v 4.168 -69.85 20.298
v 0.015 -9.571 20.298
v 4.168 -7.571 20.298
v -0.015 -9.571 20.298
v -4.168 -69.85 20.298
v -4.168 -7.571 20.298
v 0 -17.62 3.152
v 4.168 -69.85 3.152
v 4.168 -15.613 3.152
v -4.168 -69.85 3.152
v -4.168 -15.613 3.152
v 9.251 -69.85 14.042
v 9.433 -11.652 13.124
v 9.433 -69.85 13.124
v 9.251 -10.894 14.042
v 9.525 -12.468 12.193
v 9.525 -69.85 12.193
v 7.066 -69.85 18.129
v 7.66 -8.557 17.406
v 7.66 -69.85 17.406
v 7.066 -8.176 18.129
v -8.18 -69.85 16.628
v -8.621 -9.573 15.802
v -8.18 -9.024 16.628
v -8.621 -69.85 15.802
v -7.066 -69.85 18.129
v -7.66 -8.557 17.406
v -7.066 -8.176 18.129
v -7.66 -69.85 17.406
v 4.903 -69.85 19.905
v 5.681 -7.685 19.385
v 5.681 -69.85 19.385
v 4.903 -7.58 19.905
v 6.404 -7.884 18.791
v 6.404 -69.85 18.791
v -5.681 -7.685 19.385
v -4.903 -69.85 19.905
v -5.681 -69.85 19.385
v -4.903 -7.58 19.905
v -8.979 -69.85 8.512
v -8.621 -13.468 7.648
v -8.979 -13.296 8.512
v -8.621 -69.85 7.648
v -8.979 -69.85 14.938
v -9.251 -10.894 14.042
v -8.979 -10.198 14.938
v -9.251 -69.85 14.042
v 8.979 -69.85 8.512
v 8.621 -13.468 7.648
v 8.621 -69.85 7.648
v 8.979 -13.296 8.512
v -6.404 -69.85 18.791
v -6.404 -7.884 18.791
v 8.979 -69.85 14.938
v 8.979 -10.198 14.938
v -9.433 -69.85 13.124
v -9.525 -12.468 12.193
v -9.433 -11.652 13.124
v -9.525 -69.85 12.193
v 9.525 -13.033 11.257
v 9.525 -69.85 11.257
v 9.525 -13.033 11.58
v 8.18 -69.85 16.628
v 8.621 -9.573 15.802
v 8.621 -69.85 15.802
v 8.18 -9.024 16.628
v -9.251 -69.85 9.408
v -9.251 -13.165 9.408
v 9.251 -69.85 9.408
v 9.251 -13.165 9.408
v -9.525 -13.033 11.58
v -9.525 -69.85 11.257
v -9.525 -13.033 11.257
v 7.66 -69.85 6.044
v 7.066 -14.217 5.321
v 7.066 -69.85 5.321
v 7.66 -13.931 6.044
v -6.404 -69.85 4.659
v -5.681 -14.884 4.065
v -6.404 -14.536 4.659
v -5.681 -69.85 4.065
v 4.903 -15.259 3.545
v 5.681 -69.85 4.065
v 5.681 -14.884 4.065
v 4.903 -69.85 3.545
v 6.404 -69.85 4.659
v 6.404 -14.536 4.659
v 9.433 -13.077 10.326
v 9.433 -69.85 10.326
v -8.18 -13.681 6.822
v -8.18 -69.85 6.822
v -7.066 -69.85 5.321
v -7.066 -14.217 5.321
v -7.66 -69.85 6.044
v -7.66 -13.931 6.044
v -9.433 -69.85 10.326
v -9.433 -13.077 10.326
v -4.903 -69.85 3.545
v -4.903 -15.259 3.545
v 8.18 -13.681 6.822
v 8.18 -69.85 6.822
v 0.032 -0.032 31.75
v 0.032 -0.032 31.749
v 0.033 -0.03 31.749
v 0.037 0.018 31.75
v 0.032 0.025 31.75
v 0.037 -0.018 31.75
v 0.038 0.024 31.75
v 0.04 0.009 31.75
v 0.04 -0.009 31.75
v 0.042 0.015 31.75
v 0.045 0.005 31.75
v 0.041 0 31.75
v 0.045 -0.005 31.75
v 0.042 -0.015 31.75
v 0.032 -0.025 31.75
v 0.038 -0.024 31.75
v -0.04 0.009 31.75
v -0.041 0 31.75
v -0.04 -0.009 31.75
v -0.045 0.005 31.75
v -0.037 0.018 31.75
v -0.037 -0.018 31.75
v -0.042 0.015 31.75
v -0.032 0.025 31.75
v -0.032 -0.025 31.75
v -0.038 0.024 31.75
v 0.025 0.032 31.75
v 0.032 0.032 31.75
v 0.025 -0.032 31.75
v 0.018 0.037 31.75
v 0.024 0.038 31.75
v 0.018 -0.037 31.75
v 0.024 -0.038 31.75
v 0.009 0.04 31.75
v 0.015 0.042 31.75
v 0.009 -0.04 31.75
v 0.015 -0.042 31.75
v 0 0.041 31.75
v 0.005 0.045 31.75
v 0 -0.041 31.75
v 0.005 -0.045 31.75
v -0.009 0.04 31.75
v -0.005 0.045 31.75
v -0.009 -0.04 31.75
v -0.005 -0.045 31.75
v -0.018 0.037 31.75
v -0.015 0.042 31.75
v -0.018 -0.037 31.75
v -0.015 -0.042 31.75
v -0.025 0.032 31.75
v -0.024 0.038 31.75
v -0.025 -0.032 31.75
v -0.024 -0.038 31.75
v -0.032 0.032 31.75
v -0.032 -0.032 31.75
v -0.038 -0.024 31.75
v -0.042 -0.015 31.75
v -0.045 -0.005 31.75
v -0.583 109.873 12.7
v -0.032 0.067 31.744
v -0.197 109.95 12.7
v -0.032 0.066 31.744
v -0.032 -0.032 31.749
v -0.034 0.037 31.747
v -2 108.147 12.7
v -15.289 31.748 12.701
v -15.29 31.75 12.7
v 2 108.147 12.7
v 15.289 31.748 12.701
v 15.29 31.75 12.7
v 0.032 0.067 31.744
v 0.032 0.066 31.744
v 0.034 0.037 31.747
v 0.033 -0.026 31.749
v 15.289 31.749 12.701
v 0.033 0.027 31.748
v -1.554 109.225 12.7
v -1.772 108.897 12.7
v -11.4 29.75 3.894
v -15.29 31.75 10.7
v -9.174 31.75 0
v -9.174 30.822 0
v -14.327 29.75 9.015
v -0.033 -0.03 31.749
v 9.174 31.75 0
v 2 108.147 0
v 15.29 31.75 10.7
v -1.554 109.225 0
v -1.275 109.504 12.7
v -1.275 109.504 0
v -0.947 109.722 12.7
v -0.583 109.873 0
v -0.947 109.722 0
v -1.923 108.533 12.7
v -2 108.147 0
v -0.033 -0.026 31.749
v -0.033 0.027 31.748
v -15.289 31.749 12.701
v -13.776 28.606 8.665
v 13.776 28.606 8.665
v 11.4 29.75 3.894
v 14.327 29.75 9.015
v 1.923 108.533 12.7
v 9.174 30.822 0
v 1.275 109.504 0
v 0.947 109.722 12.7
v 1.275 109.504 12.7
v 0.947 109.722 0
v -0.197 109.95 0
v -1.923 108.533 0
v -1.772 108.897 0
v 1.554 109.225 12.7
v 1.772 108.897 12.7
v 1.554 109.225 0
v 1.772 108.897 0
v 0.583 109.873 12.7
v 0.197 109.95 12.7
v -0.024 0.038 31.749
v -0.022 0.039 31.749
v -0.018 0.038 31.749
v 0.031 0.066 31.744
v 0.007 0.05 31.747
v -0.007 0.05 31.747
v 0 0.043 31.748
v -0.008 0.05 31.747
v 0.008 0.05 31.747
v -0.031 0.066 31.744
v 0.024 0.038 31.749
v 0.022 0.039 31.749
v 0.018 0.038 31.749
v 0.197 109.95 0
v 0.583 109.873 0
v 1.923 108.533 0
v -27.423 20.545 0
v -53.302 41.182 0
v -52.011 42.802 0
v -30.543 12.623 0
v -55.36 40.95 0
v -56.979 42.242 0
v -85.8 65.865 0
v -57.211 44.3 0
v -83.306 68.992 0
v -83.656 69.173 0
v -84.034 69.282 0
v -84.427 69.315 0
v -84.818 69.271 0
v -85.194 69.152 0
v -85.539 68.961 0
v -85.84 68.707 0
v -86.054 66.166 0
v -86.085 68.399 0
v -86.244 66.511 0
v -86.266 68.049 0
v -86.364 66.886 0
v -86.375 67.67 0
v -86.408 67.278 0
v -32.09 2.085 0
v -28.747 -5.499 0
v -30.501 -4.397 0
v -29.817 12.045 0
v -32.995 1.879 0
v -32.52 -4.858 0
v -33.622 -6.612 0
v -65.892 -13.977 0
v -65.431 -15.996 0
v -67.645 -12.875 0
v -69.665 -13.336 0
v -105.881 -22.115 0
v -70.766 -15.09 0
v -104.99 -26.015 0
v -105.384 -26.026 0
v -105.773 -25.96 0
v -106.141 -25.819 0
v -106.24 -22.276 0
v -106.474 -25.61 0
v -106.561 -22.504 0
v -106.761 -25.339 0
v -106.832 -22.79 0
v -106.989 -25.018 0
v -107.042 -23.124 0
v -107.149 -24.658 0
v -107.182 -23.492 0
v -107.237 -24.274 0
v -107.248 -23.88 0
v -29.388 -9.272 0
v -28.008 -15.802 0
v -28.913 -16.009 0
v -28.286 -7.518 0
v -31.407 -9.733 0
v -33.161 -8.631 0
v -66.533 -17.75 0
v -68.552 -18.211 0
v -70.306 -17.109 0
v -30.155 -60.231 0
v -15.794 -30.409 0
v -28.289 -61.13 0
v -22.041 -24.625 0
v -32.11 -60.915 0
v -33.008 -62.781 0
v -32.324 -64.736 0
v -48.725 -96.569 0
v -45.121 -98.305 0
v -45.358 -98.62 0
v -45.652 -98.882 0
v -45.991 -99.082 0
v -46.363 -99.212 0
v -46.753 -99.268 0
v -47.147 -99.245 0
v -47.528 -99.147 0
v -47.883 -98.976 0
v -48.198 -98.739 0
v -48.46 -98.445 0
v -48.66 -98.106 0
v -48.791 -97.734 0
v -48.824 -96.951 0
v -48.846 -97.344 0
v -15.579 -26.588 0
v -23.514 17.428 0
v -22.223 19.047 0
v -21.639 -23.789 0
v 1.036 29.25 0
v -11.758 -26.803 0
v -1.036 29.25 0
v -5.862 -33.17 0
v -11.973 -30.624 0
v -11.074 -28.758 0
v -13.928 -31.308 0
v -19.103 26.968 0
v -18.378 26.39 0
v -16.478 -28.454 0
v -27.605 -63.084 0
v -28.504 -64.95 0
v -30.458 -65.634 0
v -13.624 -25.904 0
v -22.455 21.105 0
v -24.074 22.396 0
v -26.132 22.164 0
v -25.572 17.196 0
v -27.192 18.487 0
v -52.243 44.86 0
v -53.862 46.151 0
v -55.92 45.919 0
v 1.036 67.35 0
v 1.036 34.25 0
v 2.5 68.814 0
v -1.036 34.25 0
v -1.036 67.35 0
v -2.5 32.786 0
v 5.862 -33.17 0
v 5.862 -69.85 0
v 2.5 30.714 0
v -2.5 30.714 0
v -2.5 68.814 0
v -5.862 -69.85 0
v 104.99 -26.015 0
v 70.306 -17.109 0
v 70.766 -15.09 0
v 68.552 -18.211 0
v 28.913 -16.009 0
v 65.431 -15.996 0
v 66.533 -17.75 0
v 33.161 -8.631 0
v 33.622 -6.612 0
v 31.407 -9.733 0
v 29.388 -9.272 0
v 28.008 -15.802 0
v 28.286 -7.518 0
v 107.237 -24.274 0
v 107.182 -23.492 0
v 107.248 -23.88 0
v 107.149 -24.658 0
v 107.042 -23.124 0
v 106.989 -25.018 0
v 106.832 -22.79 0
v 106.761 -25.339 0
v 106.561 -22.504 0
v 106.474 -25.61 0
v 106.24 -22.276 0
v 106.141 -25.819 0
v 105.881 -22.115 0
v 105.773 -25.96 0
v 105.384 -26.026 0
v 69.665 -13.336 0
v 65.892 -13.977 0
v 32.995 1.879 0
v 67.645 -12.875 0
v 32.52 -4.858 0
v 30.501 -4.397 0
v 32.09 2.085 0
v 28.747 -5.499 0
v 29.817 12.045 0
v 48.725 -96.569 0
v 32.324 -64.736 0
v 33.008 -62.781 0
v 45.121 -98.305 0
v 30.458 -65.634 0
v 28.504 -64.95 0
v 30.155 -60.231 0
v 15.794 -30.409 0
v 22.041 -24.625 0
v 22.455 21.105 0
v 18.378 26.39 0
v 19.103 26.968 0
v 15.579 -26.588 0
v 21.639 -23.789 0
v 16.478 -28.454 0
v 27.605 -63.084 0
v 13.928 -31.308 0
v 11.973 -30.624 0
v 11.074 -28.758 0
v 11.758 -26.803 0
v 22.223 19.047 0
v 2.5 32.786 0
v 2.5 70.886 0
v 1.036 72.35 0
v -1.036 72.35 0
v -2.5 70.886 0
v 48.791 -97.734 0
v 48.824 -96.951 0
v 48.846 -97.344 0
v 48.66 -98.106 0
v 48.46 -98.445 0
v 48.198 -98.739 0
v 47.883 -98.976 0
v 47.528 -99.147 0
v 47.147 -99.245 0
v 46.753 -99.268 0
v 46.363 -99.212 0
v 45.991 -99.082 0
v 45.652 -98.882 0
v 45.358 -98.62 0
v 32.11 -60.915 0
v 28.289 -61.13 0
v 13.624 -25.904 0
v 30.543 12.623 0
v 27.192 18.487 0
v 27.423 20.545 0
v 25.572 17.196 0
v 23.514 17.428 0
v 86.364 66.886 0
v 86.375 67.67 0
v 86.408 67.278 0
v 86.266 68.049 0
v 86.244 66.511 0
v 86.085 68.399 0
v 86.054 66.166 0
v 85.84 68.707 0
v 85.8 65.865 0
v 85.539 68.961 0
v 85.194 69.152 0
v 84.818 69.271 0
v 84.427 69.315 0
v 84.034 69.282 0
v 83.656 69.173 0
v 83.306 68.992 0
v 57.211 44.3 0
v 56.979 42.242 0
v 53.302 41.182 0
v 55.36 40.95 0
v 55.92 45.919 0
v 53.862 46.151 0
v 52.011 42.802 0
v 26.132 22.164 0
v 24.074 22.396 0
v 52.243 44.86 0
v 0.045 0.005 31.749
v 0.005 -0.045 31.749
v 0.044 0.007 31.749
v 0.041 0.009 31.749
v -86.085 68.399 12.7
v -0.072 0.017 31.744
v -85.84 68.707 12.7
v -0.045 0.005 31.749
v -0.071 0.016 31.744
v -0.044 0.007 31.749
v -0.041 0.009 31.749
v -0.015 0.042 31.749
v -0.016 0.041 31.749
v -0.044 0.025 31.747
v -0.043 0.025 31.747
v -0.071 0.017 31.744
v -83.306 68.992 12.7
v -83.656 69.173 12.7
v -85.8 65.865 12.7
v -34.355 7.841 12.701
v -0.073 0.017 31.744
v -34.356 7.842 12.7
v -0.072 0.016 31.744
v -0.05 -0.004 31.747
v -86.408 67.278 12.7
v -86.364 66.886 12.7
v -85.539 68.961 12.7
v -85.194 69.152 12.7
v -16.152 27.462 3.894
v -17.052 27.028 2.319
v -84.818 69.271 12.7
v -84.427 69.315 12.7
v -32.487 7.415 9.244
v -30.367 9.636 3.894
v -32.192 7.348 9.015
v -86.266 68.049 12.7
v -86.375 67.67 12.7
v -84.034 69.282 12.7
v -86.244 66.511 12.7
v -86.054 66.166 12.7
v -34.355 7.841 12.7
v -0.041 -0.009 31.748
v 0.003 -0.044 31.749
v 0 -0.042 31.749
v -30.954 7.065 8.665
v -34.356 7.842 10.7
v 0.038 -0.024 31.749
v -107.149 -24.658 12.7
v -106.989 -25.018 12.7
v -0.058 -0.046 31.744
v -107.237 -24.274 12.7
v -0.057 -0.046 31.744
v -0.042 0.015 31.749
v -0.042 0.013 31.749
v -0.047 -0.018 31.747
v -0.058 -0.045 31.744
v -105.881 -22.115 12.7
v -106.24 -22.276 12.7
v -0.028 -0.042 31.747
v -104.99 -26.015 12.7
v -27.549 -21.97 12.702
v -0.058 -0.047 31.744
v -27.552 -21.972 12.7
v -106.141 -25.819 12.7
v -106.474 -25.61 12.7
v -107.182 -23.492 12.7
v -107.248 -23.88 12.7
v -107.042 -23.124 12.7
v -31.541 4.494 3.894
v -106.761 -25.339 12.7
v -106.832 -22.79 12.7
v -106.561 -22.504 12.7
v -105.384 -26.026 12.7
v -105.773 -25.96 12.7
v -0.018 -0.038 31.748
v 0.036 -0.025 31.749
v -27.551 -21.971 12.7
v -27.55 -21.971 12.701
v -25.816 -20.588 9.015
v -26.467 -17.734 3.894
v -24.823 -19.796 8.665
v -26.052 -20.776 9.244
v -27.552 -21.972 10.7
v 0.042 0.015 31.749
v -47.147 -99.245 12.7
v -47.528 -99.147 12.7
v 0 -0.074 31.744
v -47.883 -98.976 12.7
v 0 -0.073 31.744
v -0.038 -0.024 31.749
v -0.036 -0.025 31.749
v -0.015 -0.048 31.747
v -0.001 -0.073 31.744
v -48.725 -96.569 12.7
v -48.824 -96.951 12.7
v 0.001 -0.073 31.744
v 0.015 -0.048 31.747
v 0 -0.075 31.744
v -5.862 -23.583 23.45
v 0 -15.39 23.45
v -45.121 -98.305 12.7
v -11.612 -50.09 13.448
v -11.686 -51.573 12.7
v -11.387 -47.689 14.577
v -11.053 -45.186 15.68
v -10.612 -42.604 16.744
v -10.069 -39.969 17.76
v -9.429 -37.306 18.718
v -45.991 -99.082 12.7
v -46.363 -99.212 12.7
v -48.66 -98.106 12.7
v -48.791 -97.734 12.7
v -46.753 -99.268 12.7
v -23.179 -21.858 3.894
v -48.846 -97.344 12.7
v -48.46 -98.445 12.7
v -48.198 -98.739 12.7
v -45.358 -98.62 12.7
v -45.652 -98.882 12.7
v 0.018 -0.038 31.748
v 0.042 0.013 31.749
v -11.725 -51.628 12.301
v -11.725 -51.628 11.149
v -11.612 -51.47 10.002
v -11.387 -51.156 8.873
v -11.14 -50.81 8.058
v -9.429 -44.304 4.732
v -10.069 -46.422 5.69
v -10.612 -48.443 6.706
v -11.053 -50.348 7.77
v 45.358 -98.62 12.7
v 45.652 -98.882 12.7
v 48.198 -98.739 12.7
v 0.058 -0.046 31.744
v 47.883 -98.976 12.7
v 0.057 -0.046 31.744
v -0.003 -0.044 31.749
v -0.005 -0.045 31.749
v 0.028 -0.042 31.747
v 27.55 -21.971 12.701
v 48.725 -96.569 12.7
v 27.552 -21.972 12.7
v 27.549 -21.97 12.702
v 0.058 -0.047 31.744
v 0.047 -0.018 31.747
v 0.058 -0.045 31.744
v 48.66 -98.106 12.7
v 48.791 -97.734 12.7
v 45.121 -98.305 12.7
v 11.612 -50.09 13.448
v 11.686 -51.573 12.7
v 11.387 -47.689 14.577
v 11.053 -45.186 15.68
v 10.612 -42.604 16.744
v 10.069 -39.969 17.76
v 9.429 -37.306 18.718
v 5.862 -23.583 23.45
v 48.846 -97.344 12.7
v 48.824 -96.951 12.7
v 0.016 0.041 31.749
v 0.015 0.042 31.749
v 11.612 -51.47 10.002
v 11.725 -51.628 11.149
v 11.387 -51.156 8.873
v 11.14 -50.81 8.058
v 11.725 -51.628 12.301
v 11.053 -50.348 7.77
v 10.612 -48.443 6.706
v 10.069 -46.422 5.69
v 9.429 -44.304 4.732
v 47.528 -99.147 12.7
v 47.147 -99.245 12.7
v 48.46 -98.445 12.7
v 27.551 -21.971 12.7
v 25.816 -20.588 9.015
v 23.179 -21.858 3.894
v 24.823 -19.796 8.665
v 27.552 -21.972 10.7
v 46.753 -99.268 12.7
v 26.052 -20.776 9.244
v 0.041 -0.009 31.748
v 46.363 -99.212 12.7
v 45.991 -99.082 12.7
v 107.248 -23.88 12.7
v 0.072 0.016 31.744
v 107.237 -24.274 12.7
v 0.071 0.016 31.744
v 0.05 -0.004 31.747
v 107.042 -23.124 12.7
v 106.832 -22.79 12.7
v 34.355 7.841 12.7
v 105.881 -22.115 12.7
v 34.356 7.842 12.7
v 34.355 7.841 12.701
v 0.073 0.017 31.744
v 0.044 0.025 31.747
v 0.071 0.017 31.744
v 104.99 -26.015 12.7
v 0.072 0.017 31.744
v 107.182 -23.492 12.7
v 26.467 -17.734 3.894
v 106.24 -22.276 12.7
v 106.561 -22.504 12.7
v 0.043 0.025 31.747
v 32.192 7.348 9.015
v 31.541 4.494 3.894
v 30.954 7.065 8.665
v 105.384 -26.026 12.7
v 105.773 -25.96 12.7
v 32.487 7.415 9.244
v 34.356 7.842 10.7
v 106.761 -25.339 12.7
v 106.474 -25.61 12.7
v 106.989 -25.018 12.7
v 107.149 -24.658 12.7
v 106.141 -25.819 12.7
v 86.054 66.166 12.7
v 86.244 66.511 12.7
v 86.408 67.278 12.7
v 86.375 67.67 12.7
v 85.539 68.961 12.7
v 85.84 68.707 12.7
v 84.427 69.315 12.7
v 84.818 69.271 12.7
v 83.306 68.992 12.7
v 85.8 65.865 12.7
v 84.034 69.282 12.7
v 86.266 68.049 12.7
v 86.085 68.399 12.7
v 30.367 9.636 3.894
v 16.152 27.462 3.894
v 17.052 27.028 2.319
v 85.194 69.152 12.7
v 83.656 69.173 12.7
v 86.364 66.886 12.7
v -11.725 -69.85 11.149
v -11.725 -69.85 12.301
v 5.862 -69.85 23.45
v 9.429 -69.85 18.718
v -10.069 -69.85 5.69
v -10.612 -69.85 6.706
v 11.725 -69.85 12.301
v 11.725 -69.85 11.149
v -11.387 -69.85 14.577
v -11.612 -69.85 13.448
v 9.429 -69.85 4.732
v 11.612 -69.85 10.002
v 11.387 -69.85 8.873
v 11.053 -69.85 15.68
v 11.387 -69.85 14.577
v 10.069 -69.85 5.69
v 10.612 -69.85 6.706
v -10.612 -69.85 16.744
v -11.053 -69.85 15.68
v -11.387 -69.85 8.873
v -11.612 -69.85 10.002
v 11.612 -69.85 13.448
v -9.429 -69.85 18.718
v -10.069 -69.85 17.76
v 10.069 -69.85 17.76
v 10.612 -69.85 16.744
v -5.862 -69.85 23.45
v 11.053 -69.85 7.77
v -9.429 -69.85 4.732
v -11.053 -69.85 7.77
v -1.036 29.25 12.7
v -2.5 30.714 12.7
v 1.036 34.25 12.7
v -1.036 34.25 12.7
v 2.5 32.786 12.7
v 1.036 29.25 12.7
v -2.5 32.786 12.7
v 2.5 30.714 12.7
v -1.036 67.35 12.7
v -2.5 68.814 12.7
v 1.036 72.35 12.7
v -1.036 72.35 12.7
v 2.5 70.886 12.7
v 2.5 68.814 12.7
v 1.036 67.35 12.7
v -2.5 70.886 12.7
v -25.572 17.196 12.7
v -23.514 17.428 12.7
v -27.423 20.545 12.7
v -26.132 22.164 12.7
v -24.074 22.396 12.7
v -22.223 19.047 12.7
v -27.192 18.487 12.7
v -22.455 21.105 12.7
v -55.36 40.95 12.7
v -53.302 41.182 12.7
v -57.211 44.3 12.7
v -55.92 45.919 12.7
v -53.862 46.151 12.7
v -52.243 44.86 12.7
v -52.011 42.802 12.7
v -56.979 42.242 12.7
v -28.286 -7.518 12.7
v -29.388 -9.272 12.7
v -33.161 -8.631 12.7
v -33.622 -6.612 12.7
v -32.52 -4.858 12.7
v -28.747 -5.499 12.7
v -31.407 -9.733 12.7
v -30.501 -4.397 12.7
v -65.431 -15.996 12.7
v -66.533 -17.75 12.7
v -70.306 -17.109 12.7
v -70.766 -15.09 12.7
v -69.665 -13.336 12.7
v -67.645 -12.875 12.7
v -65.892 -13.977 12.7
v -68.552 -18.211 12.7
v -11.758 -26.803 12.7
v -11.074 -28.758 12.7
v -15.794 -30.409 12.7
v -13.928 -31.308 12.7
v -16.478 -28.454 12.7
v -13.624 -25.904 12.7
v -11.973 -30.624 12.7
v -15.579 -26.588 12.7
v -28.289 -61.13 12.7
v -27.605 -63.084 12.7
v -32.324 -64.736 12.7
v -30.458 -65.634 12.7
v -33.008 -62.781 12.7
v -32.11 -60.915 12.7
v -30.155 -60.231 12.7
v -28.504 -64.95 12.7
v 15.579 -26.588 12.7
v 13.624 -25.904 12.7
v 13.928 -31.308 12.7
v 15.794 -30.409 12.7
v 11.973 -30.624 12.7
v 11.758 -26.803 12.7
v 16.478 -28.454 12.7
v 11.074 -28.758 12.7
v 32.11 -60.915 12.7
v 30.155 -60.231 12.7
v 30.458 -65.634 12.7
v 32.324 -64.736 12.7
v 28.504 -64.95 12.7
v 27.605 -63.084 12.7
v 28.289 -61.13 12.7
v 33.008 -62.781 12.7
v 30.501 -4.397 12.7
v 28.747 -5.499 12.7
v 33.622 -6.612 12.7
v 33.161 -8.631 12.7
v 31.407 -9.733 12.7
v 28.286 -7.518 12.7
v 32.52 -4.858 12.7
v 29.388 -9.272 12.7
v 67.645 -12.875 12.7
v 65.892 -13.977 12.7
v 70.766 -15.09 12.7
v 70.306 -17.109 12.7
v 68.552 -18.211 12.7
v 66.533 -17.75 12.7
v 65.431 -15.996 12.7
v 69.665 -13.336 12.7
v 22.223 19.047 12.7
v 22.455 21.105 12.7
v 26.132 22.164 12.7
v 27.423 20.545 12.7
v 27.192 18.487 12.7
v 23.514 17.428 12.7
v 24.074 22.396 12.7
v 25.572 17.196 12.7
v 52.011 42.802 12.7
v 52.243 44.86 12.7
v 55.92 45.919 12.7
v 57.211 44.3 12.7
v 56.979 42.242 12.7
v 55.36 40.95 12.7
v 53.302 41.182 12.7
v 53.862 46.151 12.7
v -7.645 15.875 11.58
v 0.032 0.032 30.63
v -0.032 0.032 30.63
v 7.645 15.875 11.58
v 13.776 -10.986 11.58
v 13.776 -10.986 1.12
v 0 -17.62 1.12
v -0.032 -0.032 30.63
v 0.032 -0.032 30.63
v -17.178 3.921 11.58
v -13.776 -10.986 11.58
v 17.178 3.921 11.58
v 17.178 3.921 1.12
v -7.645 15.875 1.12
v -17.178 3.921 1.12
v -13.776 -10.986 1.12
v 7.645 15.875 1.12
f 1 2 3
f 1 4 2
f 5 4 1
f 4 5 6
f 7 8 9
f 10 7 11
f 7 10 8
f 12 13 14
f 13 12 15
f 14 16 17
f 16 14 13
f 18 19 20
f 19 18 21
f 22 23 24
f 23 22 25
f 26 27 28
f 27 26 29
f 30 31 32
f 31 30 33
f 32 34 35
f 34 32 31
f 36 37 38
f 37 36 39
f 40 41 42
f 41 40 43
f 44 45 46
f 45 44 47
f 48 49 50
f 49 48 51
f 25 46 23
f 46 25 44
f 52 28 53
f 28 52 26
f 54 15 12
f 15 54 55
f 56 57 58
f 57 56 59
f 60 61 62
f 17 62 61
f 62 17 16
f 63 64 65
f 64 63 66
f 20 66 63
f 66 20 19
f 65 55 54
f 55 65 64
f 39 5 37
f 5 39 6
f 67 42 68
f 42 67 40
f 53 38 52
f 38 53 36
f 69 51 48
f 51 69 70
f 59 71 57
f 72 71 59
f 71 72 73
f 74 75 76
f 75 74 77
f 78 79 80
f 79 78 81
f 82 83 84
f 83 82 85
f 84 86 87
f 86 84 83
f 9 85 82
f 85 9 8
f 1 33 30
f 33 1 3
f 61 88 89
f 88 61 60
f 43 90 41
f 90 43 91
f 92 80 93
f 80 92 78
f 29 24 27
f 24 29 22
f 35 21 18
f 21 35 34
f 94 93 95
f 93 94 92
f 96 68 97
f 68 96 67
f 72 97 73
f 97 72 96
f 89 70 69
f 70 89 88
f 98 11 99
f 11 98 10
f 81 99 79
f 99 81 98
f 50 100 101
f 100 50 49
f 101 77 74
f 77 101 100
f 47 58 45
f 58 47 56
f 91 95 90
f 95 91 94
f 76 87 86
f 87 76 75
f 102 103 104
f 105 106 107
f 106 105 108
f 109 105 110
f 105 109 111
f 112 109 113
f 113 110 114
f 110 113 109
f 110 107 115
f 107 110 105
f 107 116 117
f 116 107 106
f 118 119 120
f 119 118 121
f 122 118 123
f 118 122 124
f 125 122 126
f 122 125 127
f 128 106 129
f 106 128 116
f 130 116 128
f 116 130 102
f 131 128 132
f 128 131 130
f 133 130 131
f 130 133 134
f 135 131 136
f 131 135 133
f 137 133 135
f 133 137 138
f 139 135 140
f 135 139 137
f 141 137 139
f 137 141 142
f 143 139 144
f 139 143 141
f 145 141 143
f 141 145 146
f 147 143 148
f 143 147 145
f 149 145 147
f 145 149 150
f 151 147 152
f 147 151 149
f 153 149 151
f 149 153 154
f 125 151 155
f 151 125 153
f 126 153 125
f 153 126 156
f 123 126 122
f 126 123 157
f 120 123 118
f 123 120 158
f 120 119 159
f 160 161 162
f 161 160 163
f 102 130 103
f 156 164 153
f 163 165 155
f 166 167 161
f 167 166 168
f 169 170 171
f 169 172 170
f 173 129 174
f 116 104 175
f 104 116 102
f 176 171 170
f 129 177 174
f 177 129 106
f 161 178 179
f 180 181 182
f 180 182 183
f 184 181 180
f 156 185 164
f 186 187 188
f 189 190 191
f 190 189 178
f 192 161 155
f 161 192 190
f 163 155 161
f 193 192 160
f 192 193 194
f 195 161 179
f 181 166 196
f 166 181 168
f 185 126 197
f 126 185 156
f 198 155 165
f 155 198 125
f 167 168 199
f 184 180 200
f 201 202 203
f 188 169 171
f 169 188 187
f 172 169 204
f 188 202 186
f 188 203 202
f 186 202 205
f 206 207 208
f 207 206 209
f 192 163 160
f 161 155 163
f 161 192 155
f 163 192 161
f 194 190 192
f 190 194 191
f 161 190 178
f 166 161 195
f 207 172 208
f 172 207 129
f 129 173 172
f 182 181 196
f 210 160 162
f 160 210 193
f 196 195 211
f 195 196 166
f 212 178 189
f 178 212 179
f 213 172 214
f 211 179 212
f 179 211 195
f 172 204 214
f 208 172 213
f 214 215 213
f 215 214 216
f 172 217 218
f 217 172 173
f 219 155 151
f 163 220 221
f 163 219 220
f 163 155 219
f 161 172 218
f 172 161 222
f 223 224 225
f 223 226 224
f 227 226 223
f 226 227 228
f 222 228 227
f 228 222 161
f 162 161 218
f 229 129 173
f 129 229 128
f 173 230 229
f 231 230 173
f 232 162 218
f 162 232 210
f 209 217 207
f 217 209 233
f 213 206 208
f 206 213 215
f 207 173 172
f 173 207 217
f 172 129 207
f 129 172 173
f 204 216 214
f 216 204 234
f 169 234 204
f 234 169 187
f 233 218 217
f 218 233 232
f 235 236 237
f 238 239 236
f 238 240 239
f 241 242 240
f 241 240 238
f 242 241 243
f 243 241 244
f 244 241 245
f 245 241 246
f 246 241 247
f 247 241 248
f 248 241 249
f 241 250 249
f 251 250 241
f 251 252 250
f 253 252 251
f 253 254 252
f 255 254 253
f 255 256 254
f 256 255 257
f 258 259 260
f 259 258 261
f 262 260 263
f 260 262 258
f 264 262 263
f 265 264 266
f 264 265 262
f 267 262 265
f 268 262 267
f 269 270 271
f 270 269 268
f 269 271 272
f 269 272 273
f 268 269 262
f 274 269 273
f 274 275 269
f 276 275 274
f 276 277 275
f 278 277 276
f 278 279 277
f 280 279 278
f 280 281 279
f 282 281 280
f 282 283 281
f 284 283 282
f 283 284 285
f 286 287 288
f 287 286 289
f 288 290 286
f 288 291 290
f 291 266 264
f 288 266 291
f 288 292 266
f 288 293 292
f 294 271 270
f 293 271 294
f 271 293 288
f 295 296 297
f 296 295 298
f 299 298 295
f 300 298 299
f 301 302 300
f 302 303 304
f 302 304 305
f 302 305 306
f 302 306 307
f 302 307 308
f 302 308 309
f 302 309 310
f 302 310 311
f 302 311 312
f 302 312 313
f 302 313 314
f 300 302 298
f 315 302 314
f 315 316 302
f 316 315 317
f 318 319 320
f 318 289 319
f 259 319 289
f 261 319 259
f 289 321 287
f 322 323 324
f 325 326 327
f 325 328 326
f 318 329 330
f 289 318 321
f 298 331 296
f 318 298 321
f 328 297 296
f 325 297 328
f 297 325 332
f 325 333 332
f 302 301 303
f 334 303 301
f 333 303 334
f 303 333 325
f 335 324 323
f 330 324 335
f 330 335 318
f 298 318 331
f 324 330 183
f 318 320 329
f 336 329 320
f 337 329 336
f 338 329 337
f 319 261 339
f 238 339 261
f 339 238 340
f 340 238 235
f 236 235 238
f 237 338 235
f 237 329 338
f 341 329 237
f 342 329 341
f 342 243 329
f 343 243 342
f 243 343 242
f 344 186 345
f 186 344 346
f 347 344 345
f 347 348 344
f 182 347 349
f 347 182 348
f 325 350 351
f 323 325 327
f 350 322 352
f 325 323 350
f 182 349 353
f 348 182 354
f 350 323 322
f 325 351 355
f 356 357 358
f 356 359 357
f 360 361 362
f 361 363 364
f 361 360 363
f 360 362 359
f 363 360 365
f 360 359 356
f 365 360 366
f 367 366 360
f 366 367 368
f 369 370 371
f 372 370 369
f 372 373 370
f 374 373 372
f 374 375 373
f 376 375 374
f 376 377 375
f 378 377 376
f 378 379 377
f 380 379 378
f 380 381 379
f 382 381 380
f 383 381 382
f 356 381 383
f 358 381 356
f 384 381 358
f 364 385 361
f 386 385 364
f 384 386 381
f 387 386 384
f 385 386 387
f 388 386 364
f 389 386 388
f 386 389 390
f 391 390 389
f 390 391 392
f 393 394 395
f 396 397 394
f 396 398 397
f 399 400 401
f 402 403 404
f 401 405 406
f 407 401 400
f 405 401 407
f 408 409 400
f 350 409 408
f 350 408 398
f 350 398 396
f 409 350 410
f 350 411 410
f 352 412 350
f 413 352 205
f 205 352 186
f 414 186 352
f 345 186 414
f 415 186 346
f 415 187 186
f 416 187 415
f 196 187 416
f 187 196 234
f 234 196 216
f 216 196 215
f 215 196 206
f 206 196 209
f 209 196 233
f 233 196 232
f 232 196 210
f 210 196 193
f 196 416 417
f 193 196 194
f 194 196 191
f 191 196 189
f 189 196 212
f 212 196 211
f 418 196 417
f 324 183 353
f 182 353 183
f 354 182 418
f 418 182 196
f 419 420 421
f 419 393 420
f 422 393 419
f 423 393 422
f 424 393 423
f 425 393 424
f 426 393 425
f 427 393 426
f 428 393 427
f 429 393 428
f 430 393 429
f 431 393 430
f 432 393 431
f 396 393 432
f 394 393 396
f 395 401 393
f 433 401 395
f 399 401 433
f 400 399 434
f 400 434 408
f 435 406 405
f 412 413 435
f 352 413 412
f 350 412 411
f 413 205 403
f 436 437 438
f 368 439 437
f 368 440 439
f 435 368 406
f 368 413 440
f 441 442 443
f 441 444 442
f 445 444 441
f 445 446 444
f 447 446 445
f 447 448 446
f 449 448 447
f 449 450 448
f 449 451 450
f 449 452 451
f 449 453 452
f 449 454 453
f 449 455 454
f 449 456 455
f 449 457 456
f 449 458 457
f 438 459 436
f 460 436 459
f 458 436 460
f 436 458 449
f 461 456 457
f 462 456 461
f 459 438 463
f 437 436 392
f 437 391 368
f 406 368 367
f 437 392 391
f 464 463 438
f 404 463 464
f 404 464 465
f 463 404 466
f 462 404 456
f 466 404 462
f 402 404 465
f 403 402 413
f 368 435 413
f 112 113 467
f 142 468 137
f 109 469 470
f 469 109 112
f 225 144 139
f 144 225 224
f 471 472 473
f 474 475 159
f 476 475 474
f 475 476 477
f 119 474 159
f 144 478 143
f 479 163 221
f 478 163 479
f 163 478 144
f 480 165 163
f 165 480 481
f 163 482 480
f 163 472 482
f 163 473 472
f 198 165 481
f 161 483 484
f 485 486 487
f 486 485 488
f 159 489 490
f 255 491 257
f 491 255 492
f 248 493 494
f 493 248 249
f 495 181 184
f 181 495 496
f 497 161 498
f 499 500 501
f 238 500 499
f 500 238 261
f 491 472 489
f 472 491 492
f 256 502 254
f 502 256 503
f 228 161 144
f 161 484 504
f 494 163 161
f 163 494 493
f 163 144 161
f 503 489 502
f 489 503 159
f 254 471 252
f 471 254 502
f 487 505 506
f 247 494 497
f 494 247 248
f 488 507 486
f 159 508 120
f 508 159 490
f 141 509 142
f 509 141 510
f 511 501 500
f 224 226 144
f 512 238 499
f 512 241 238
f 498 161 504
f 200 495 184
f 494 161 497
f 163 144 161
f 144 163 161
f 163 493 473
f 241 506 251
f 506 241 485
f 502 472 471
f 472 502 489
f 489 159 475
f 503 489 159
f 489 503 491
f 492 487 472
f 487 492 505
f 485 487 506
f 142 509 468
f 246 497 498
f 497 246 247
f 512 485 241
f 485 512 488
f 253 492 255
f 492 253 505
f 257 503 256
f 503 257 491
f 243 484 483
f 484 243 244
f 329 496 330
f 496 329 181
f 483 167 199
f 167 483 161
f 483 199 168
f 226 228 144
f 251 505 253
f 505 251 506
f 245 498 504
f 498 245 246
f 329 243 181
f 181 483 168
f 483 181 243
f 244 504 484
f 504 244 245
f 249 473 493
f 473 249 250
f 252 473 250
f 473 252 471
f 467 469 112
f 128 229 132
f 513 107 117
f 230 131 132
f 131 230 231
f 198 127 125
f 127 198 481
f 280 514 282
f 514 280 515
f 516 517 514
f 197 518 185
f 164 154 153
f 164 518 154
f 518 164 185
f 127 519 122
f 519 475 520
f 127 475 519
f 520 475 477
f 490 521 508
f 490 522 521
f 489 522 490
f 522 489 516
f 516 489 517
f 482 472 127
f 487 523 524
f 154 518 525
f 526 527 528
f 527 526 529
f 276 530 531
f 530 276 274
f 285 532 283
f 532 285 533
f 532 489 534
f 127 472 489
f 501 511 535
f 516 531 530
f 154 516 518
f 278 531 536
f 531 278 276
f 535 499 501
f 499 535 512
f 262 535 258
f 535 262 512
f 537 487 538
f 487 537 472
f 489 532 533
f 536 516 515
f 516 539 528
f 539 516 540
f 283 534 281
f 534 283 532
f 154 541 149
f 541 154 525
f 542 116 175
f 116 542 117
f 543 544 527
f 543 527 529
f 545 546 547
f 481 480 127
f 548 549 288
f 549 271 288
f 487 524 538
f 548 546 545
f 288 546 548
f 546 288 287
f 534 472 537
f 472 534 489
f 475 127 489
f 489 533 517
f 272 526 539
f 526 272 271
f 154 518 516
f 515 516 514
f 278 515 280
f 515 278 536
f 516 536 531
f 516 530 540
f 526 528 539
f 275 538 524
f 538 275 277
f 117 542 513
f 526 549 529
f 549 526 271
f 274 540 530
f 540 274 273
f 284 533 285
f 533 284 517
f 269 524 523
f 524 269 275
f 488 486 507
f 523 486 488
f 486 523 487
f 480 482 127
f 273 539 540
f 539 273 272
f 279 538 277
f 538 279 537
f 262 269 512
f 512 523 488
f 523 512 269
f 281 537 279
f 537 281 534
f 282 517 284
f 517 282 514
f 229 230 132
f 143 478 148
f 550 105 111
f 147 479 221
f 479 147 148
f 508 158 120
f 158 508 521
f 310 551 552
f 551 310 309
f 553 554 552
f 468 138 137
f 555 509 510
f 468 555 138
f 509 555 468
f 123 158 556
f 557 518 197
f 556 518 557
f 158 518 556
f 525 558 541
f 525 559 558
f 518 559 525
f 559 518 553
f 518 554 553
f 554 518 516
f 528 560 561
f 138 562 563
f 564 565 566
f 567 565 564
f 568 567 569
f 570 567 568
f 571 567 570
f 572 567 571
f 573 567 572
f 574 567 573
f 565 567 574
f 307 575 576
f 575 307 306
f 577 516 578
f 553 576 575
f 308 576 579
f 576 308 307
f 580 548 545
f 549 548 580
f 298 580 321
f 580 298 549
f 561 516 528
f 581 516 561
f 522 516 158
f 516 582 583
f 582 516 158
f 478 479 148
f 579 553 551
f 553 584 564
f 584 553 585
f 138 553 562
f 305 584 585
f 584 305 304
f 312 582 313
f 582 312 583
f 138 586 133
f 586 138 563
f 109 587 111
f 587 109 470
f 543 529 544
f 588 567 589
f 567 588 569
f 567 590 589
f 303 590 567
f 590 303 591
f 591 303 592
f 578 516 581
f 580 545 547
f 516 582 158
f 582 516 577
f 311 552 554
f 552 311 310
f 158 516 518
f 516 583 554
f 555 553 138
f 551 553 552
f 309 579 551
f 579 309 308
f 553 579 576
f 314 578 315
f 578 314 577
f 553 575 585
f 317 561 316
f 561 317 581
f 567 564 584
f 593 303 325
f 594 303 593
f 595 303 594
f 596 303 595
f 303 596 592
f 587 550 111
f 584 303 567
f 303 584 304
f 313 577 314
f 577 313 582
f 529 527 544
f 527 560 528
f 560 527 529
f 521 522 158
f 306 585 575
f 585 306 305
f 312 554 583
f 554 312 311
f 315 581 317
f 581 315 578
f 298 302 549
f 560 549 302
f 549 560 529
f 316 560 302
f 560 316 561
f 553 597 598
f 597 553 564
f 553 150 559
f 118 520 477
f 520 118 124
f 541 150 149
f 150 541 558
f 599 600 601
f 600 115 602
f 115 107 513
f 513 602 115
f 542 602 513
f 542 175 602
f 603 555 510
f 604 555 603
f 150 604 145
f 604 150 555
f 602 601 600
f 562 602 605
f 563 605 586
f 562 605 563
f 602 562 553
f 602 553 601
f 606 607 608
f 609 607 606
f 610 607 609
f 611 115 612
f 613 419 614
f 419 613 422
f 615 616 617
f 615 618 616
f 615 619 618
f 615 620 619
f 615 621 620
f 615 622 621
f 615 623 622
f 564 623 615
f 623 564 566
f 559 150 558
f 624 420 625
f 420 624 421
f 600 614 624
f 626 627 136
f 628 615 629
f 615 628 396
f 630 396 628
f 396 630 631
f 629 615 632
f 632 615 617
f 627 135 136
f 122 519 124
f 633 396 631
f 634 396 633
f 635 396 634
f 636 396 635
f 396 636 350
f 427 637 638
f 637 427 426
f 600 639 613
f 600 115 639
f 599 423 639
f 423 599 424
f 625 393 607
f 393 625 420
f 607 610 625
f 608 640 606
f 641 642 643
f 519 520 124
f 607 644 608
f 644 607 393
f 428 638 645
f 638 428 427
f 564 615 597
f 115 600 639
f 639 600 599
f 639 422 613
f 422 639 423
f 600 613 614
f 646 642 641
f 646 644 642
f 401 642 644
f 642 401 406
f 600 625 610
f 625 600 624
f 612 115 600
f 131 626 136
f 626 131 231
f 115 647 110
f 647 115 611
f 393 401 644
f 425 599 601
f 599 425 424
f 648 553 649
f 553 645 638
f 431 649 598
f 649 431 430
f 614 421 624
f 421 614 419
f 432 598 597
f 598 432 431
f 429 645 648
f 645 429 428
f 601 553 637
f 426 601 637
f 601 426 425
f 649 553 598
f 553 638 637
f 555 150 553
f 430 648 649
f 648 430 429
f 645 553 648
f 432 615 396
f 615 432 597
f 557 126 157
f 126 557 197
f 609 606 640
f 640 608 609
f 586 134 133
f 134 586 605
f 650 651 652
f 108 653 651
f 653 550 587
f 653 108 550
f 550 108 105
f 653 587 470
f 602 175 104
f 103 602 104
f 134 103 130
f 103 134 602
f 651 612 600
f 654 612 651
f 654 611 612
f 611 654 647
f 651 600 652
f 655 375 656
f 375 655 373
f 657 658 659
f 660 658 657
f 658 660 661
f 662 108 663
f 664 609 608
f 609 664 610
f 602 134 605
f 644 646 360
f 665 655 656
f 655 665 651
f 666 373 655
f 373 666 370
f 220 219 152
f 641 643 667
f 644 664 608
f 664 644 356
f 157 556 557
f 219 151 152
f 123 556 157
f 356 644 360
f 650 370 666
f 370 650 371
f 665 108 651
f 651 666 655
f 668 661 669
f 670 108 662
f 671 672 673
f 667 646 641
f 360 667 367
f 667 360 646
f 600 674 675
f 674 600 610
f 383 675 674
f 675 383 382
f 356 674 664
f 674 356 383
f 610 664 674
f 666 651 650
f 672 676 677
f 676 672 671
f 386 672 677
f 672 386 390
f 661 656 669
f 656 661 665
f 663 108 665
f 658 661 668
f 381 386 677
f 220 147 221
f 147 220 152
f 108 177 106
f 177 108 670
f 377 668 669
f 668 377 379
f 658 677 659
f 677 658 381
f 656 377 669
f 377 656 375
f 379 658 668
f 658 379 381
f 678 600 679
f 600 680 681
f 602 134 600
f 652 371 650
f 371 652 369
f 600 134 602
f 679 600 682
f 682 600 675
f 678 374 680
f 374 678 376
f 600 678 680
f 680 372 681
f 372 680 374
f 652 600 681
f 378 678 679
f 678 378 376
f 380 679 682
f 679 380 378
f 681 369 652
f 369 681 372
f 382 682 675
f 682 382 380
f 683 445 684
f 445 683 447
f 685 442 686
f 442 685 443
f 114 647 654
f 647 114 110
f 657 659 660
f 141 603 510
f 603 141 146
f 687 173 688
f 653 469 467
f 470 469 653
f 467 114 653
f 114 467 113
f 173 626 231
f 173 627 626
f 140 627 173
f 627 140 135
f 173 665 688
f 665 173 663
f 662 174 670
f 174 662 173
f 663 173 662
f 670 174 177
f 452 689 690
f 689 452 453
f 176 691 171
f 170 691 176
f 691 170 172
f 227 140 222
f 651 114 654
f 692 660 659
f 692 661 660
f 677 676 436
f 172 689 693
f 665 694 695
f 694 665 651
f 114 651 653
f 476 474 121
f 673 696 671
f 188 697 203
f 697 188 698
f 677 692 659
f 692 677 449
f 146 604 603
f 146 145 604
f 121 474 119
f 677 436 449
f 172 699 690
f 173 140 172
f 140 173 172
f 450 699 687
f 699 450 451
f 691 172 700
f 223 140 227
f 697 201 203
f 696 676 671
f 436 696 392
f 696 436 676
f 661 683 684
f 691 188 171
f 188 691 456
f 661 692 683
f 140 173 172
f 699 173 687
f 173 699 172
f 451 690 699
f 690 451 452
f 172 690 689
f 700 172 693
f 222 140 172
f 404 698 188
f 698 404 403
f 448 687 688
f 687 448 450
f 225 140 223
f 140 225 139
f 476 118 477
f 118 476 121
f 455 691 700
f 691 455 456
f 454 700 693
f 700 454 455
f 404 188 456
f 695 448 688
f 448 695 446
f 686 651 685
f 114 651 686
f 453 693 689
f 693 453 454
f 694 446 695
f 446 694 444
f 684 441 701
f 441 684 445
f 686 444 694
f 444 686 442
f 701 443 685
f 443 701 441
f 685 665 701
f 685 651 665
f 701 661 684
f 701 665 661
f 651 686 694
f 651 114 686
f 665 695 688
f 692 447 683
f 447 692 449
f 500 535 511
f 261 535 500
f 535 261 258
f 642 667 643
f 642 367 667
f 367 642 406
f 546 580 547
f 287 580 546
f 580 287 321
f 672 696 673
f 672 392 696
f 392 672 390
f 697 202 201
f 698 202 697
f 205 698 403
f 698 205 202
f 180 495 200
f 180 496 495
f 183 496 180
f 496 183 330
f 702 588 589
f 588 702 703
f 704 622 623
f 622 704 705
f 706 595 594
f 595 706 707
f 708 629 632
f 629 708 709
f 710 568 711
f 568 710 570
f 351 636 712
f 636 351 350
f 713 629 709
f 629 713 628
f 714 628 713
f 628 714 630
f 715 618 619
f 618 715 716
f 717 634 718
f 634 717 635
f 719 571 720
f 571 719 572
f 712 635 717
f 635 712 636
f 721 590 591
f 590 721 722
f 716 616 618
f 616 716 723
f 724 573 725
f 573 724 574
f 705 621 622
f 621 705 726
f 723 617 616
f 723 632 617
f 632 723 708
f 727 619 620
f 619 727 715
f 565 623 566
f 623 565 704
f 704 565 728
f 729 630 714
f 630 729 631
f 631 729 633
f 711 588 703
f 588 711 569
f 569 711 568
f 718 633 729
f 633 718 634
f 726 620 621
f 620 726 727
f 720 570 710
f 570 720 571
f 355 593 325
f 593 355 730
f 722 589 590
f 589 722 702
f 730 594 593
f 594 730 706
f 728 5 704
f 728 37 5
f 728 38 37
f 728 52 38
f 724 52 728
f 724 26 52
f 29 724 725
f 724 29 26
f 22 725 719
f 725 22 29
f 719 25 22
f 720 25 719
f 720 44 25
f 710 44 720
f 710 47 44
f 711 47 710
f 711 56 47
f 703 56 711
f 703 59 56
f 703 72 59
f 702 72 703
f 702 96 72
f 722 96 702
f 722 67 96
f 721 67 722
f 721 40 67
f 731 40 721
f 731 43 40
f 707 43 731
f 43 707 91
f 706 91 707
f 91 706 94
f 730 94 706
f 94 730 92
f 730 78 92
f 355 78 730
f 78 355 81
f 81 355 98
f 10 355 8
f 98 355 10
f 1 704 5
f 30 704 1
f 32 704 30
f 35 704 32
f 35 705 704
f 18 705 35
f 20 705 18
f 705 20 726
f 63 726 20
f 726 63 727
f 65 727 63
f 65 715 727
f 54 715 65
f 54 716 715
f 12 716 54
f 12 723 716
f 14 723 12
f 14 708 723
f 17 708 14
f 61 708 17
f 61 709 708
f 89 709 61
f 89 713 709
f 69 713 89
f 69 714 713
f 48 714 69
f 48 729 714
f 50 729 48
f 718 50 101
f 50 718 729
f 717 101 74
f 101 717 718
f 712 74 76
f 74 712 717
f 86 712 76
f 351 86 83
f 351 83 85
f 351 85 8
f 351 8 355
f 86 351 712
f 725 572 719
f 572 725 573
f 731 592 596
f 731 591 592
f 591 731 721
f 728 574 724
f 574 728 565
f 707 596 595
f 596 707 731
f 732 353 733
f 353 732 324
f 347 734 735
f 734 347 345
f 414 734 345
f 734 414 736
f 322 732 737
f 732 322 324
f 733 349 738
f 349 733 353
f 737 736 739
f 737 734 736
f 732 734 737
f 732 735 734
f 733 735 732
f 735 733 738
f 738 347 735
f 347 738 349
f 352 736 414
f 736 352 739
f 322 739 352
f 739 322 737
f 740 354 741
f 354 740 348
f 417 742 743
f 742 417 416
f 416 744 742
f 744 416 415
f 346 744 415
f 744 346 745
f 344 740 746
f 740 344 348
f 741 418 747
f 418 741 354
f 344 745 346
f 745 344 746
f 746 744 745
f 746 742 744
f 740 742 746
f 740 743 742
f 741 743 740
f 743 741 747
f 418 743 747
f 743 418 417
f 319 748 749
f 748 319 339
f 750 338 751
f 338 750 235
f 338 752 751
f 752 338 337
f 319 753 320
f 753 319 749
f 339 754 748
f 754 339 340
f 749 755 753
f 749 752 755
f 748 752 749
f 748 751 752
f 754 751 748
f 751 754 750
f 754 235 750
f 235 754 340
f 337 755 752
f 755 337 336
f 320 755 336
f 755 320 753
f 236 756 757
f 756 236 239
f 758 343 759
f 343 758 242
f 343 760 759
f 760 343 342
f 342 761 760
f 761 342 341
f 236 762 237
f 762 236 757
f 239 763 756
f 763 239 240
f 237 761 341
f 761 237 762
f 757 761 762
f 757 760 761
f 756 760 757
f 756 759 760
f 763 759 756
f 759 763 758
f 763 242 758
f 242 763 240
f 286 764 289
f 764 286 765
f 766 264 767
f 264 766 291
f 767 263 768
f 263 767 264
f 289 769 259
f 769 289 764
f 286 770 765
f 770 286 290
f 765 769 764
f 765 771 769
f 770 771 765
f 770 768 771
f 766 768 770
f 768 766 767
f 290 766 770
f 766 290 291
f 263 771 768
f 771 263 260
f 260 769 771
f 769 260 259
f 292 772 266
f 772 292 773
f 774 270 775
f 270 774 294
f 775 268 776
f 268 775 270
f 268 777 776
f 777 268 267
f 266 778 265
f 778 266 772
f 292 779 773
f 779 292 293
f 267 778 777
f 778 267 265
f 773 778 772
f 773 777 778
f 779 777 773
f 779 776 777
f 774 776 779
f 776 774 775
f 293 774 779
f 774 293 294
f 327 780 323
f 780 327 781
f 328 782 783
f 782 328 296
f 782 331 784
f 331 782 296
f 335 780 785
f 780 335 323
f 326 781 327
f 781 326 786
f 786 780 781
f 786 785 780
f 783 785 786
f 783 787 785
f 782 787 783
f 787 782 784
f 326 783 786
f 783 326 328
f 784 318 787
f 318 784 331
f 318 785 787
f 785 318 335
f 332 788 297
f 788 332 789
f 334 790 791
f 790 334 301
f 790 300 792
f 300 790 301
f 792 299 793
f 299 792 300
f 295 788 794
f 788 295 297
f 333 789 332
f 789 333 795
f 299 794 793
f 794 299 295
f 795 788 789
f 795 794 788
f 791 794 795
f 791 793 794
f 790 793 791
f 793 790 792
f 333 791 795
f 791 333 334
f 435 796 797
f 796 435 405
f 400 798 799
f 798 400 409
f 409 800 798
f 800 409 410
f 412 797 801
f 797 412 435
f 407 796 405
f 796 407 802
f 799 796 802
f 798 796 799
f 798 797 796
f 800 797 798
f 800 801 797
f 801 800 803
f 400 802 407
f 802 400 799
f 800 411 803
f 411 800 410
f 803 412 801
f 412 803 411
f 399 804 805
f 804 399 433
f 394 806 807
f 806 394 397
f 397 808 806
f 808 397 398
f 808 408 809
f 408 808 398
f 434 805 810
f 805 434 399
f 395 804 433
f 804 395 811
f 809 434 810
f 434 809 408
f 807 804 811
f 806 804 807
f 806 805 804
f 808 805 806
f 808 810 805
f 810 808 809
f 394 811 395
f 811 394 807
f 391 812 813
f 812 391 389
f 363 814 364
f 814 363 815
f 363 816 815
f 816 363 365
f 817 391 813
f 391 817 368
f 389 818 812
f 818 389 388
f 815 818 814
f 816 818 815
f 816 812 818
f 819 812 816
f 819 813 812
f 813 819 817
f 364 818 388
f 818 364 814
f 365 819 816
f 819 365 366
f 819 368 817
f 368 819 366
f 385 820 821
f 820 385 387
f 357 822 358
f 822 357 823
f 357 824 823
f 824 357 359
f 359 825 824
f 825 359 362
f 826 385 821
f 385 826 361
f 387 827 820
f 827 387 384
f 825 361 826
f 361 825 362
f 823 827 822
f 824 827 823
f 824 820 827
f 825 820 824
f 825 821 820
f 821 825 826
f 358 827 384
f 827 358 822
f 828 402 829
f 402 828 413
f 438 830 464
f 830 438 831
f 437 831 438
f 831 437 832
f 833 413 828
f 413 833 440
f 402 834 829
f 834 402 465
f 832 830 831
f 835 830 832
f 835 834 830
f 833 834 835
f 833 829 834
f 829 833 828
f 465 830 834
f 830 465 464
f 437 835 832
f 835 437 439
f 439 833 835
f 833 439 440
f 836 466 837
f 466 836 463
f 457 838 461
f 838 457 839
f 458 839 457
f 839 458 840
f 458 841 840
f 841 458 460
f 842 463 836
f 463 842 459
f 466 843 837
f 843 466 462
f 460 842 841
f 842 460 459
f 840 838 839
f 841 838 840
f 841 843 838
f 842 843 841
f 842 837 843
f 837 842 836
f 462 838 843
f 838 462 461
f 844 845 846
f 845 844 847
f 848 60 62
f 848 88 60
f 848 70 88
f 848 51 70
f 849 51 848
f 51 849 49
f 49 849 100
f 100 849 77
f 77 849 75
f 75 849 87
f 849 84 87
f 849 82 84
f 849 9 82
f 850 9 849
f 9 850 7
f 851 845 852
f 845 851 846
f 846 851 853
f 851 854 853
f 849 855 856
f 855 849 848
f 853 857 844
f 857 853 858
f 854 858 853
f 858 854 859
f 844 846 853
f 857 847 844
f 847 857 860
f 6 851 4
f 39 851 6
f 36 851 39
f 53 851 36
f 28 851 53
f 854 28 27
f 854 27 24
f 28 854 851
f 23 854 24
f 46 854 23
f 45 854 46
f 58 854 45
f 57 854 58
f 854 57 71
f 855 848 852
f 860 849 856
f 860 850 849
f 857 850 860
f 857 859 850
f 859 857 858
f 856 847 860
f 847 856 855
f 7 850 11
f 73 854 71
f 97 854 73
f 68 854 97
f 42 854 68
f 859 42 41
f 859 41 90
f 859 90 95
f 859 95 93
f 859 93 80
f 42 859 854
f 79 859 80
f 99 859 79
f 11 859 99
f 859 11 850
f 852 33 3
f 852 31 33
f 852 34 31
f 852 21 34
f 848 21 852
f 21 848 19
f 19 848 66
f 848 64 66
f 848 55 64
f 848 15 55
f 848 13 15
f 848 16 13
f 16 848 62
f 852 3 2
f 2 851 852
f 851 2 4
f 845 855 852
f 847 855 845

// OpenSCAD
// file: ../lib/util.scad
left   = -1;
right  = 1;
front  = -1;
rear   = 1;
top    = 1;
bottom = -1;

x = 0;
y = 1;
z = 2;

width  = x;
depth  = y;
height = z;

inch = 25.4;

function accurate_diam(diam,sides) = 1 / cos(180/sides) / 2 * diam;

module hole(diam,len,sides=8) {
  rotate([0,0,180/sides]) {
    cylinder(r=accurate_diam(diam,sides),h=len,center=true,$fn=sides);
  }
}

module accurate_circle(diam,sides=8) {
  rotate([0,0,180/sides]) {
    circle(r=accurate_diam(diam,sides),$fn=sides);
  }
}

module debug_axes() {
  color("red") {
    translate([50,0,0]) cube([100,.2,.2],center=true);
    translate([0,50,0]) cube([.2,100,.2],center=true);
    translate([0,0,50]) cube([.2,.2,100],center=true);
  }
}

module rounded_square(width,height,diam,resolution=16) {
  hull() {
    for(x=[left,right]) {
      for(y=[front,rear]) {
        translate([x*(width/2-diam/2),y*(height/2-diam/2),0]) {
          accurate_circle(diam,resolution);
        }
      }
    }
  }
}
// main file
include <../lib/util.scad>;

resolution = 64;
extrusion_width = 0.55;
wall_thickness = extrusion_width*2;

module star(points) {
  body_diam = 2.5*inch;
  arm_length = 3*inch;
  arm_point_diam = 4;
  arm_base_bottom_pct_width = 0.6;
  height = 1/2*inch;
  peak_height = height*2.5;
  peak_diam = body_diam * 0.001;

  light_diam = 5;

  arm_deg = 360/points;
  arm_base_width = 2*(tan(arm_deg/2)*body_diam/2);

  tree_top_diam = 3/4*inch;
  tree_mount_outer_diam = tree_top_diam + wall_thickness*4;
  tree_mount_length = body_diam/2+arm_length/2;

  // Even-legged stars just look weird, and the star of david should probably
  // have a point up, but I am allowed to ignore YAGNI when I'm not working.
  // Okay, fine. This is YAGNI and it also does weird things.
  body_rotate = 0; // (points % 2 || points == 6) ? 0 : arm_deg/2;

  module body() {
    rotate([0,0,body_rotate]) {
      translate([0,0,height/2]) {
        rotate([0,0,90+arm_deg/2]) {
          hole(body_diam,height,points);
        }
      }

      for(i=[0:points-1]) {
        rotate([0,0,i*arm_deg]) {
          hull() {
            translate([0,0,peak_height/2]) {
              cube([peak_diam,peak_diam,peak_height],center=true);
              //hole(peak_diam,peak_height,resolution);
            }

            translate([0,body_diam/2,height/2]) {
              translate([0,arm_length,0]) {
                hole(arm_point_diam,height,resolution/2);
              }
              translate([0,-1,0]) {
                translate([0,0,height/2-1]) {
                  cube([arm_base_width,2,2],center=true);
                }
                translate([0,0,-height/2+1]) {
                  cube([arm_base_width*arm_base_bottom_pct_width,2,2],center=true);
                }
              }
            }
          }
        }
      }
    }

    // tree mount
    hull() {
      translate([0,-tree_mount_length/2,0]) {
        translate([0,0,tree_mount_outer_diam/2]) {
          cube([tree_mount_outer_diam*0.5,tree_mount_length,tree_mount_outer_diam],center=true);
          rotate([90,0,0]) {
            hole(tree_mount_outer_diam,tree_mount_length,resolution);
          }
        }
      }
    }
  }

  module holes() {
    for(i=[0:points-1]) {
      rotate([0,0,i*arm_deg]) {
        translate([0,body_diam/2,0]) {
          hole(light_diam,height*2,8);

          translate([0,arm_length/2,0]) {
            hole(light_diam,height*2,8);
          }
        }
      }
    }

    translate([0,-tree_mount_length,tree_mount_outer_diam/2]) {
      intersection() {
        cube([tree_top_diam*2,tree_mount_length*2.5,tree_top_diam*0.9],center=true);
        rotate([90,0,0]) {
          hole(tree_top_diam,tree_mount_length*2,resolution);
        }
      }
    }

    // hollow out the center
    top_bottom_thickness = 0.28*4;
    rotate([0,0,90+body_rotate]) {
      hull() {
        translate([0,0,height/2]) {
          hole(body_diam*0.5,height-top_bottom_thickness*2,points);
        }
        translate([0,0,peak_height-top_bottom_thickness-1]) {
          cube([peak_diam,peak_diam,2],center=true);
        }
      }
    }
  }

  difference() {
    body();
    holes();
  }
}

star(7);
